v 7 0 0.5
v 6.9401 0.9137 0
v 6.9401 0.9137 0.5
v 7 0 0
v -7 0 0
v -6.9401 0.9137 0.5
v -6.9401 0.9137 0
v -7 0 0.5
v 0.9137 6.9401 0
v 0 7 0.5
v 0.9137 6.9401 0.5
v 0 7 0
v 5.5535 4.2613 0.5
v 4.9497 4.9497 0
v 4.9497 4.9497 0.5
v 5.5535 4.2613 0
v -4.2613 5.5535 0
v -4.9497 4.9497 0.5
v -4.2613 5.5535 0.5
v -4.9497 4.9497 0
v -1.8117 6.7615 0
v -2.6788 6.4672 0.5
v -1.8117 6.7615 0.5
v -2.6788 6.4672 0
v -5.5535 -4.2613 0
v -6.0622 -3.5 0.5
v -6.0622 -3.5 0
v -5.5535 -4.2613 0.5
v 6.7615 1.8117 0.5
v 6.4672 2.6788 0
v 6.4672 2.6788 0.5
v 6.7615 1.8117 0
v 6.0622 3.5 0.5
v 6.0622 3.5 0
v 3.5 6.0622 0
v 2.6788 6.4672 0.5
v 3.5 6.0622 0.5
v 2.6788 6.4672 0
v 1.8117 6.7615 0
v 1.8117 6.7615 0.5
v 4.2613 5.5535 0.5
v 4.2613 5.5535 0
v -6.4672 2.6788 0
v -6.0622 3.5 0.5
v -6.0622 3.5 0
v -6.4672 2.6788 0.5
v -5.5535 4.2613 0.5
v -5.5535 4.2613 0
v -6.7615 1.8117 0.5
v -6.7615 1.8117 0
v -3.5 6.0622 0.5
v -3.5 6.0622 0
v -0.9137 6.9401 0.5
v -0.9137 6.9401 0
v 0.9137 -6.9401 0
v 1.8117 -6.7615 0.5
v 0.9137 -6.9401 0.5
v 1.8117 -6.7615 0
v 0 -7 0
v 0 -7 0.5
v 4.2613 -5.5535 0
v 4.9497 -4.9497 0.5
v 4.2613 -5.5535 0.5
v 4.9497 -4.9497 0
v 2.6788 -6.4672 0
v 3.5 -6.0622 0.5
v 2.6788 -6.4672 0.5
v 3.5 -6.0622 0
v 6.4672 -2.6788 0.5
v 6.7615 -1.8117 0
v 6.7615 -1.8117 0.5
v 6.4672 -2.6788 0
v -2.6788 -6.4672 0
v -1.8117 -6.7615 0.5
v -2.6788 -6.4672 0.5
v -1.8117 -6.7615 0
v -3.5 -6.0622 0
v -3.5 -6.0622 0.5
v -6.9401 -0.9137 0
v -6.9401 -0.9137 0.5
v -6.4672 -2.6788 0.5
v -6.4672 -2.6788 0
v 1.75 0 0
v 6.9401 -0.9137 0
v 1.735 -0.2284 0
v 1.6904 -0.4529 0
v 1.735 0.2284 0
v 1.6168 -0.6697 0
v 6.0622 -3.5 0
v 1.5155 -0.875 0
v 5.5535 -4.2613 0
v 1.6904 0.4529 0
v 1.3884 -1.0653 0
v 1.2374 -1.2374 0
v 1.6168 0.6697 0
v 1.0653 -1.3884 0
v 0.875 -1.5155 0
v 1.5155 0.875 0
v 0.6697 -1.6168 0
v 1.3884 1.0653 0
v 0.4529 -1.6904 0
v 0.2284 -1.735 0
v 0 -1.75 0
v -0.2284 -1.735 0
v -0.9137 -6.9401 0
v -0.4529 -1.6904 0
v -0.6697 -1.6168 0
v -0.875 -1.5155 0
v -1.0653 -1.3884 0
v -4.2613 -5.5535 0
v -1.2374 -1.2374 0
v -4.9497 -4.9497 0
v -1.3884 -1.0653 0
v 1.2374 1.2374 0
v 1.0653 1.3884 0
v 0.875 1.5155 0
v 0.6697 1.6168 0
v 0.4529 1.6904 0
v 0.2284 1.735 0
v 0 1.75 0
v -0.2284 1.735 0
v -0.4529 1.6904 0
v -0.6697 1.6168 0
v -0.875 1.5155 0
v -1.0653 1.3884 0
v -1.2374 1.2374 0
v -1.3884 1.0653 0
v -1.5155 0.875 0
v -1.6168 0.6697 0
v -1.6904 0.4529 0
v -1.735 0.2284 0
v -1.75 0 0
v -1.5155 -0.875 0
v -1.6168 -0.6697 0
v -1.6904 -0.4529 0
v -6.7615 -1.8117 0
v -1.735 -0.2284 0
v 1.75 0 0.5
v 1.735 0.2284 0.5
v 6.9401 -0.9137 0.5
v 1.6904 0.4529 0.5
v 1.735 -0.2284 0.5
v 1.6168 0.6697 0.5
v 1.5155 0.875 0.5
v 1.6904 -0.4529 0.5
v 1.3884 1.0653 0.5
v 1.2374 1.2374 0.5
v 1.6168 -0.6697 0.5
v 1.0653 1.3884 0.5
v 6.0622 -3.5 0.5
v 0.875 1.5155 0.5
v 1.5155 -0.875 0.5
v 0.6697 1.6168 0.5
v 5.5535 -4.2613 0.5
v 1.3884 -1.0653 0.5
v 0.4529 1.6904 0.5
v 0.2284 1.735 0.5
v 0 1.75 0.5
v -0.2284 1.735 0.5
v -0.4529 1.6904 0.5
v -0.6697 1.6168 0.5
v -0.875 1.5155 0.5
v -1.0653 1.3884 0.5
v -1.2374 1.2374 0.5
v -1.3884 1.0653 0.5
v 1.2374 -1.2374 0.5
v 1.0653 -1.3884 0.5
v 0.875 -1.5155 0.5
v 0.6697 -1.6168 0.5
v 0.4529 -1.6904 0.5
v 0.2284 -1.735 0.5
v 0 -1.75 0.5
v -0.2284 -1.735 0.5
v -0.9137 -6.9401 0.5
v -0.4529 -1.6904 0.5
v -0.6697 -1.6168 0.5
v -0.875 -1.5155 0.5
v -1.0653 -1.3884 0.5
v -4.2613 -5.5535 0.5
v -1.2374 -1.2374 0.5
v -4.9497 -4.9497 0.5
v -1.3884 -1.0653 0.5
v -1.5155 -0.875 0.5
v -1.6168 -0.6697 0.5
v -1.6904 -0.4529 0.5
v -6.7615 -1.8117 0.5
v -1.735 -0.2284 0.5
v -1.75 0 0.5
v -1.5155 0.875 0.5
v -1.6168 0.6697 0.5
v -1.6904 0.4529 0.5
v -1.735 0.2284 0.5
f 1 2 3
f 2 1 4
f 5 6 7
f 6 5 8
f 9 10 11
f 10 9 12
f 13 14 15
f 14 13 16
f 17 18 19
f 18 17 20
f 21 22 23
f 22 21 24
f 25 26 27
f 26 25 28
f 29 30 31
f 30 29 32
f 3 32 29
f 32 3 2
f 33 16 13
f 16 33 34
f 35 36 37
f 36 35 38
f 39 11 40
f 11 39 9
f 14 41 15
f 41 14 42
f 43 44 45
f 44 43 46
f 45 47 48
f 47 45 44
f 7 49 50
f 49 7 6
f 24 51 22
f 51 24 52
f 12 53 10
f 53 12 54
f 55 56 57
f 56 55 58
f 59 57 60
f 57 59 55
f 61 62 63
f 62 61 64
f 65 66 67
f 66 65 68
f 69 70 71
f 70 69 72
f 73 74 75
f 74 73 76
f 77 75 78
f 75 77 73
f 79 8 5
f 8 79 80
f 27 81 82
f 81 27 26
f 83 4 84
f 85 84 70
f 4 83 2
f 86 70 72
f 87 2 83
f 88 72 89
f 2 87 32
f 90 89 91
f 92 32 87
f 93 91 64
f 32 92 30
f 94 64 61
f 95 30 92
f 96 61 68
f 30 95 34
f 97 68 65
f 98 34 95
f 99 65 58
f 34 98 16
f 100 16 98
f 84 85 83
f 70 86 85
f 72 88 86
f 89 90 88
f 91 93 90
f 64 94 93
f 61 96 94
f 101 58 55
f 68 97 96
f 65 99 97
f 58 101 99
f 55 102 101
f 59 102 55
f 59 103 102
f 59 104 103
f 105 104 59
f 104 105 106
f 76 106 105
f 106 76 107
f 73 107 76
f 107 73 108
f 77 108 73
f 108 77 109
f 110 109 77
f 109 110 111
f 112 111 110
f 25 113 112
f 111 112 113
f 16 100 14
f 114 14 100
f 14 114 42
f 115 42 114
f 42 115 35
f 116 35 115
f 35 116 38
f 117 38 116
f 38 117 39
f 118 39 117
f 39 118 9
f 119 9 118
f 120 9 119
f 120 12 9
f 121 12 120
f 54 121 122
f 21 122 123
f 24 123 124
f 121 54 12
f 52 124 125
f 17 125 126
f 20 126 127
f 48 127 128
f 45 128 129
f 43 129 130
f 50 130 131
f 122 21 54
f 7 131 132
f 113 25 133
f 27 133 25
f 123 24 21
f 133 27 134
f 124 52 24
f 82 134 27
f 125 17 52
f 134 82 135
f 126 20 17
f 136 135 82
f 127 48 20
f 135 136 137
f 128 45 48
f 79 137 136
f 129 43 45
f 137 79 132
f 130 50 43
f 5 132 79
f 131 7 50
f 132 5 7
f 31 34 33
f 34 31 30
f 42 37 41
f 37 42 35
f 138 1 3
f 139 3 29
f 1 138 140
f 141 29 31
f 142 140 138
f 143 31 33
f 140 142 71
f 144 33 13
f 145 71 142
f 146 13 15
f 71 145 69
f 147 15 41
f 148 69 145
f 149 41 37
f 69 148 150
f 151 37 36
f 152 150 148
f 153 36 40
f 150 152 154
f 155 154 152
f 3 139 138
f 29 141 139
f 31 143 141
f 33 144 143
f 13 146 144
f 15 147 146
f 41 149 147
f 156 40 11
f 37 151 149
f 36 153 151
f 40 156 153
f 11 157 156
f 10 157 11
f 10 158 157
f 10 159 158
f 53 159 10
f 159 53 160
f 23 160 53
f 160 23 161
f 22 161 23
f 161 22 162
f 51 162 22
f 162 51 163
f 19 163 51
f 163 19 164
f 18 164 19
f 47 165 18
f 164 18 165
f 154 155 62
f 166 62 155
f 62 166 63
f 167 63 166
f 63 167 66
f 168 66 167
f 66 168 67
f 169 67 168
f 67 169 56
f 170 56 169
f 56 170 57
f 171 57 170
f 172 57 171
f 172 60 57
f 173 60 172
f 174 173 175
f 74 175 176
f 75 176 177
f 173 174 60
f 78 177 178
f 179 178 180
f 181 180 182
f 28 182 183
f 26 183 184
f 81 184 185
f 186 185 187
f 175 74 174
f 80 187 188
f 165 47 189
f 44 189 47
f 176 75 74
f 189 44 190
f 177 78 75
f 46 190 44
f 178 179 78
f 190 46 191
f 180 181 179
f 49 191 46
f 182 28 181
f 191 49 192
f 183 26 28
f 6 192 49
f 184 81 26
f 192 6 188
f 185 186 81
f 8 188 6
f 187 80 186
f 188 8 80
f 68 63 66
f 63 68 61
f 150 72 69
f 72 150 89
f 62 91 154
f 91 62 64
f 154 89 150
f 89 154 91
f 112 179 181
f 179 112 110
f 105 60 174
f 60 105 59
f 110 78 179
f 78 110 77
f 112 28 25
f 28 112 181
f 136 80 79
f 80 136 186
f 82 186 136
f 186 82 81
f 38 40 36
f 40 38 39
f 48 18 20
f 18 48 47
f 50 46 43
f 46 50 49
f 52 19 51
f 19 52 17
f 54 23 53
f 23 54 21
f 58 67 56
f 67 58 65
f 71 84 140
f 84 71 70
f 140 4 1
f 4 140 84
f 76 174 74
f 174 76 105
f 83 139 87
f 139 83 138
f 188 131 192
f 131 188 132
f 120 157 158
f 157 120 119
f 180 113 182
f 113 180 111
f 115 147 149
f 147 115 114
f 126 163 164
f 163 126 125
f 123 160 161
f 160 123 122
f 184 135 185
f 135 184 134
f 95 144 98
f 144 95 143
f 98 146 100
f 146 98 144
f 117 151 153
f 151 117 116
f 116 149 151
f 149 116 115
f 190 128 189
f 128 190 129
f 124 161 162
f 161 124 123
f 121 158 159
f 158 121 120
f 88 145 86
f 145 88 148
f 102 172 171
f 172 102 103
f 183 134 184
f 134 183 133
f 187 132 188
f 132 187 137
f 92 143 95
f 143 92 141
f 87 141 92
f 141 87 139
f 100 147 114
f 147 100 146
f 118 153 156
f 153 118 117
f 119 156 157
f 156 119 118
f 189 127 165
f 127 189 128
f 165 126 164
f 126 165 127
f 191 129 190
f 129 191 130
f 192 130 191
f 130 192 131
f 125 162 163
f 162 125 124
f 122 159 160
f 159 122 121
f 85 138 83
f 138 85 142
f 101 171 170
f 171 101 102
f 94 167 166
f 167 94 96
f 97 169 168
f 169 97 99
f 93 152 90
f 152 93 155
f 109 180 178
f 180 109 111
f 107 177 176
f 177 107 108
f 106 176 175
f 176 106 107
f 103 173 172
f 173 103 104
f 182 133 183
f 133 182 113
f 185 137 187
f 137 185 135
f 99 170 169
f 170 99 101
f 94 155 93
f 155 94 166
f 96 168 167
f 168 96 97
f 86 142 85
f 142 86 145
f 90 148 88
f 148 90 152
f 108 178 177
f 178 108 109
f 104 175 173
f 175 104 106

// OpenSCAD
// Gen-DB — assembly gap shim, h = run_clear (rotor face -> flange); copper is inside the flanges
include <parameters.scad>;
$fn = 48;
difference() {
    cylinder(d=spacer_pad_od, h=gap_spacer_h);
    translate([0, 0, -0.1]) cylinder(d=spacer_pad_id, h=gap_spacer_h + 0.2);
}
